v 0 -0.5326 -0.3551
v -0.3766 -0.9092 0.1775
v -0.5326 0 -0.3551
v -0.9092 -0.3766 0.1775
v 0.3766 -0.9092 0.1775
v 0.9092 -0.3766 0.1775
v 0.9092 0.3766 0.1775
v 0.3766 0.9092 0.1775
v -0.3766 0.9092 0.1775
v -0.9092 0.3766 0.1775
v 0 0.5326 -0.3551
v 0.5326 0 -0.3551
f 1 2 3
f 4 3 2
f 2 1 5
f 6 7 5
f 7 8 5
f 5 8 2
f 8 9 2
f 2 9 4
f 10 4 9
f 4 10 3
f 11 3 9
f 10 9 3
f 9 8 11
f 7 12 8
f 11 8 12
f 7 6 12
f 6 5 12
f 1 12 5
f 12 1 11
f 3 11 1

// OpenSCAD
polyhedron( points = [[-0.376604445208757, -0.909203559320059, 0.177533037964037], [-0.909203559335694, -0.376604445121386, 0.177533037964037], [-0.909203559234245, 0.376604445272266, 0.177533037964037], [-0.376604445127117, 0.909203559259842, 0.177533037964037], [0.376604445266538, 0.909203559192204, 0.177533037964037], [0.909203559278021, 0.376604445108985, 0.177533037964037], [0.909203559244202, -0.376604445284667, 0.177533037964037], [0.376604445184898, -0.909203559320059, 0.177533037964037], [7.59447227413845e-12, -0.532599113780047, -0.355066075942295], [-0.532599114110889, 1.38436848600155e-10, -0.35506607575015], [5.54187084057049e-11, 0.532599113944941, -0.355066076009928], [0.53259911398003, -9.04558193712513e-11, -0.355066076009927]], faces = [[0, 1, 9, 8], [0, 8, 7], [0, 7, 6, 5, 4, 3, 2, 1], [1, 2, 9], [2, 3, 10, 9], [3, 4, 10], [4, 5, 11, 10], [5, 6, 11], [6, 7, 8, 11], [8, 9, 10, 11]]);
